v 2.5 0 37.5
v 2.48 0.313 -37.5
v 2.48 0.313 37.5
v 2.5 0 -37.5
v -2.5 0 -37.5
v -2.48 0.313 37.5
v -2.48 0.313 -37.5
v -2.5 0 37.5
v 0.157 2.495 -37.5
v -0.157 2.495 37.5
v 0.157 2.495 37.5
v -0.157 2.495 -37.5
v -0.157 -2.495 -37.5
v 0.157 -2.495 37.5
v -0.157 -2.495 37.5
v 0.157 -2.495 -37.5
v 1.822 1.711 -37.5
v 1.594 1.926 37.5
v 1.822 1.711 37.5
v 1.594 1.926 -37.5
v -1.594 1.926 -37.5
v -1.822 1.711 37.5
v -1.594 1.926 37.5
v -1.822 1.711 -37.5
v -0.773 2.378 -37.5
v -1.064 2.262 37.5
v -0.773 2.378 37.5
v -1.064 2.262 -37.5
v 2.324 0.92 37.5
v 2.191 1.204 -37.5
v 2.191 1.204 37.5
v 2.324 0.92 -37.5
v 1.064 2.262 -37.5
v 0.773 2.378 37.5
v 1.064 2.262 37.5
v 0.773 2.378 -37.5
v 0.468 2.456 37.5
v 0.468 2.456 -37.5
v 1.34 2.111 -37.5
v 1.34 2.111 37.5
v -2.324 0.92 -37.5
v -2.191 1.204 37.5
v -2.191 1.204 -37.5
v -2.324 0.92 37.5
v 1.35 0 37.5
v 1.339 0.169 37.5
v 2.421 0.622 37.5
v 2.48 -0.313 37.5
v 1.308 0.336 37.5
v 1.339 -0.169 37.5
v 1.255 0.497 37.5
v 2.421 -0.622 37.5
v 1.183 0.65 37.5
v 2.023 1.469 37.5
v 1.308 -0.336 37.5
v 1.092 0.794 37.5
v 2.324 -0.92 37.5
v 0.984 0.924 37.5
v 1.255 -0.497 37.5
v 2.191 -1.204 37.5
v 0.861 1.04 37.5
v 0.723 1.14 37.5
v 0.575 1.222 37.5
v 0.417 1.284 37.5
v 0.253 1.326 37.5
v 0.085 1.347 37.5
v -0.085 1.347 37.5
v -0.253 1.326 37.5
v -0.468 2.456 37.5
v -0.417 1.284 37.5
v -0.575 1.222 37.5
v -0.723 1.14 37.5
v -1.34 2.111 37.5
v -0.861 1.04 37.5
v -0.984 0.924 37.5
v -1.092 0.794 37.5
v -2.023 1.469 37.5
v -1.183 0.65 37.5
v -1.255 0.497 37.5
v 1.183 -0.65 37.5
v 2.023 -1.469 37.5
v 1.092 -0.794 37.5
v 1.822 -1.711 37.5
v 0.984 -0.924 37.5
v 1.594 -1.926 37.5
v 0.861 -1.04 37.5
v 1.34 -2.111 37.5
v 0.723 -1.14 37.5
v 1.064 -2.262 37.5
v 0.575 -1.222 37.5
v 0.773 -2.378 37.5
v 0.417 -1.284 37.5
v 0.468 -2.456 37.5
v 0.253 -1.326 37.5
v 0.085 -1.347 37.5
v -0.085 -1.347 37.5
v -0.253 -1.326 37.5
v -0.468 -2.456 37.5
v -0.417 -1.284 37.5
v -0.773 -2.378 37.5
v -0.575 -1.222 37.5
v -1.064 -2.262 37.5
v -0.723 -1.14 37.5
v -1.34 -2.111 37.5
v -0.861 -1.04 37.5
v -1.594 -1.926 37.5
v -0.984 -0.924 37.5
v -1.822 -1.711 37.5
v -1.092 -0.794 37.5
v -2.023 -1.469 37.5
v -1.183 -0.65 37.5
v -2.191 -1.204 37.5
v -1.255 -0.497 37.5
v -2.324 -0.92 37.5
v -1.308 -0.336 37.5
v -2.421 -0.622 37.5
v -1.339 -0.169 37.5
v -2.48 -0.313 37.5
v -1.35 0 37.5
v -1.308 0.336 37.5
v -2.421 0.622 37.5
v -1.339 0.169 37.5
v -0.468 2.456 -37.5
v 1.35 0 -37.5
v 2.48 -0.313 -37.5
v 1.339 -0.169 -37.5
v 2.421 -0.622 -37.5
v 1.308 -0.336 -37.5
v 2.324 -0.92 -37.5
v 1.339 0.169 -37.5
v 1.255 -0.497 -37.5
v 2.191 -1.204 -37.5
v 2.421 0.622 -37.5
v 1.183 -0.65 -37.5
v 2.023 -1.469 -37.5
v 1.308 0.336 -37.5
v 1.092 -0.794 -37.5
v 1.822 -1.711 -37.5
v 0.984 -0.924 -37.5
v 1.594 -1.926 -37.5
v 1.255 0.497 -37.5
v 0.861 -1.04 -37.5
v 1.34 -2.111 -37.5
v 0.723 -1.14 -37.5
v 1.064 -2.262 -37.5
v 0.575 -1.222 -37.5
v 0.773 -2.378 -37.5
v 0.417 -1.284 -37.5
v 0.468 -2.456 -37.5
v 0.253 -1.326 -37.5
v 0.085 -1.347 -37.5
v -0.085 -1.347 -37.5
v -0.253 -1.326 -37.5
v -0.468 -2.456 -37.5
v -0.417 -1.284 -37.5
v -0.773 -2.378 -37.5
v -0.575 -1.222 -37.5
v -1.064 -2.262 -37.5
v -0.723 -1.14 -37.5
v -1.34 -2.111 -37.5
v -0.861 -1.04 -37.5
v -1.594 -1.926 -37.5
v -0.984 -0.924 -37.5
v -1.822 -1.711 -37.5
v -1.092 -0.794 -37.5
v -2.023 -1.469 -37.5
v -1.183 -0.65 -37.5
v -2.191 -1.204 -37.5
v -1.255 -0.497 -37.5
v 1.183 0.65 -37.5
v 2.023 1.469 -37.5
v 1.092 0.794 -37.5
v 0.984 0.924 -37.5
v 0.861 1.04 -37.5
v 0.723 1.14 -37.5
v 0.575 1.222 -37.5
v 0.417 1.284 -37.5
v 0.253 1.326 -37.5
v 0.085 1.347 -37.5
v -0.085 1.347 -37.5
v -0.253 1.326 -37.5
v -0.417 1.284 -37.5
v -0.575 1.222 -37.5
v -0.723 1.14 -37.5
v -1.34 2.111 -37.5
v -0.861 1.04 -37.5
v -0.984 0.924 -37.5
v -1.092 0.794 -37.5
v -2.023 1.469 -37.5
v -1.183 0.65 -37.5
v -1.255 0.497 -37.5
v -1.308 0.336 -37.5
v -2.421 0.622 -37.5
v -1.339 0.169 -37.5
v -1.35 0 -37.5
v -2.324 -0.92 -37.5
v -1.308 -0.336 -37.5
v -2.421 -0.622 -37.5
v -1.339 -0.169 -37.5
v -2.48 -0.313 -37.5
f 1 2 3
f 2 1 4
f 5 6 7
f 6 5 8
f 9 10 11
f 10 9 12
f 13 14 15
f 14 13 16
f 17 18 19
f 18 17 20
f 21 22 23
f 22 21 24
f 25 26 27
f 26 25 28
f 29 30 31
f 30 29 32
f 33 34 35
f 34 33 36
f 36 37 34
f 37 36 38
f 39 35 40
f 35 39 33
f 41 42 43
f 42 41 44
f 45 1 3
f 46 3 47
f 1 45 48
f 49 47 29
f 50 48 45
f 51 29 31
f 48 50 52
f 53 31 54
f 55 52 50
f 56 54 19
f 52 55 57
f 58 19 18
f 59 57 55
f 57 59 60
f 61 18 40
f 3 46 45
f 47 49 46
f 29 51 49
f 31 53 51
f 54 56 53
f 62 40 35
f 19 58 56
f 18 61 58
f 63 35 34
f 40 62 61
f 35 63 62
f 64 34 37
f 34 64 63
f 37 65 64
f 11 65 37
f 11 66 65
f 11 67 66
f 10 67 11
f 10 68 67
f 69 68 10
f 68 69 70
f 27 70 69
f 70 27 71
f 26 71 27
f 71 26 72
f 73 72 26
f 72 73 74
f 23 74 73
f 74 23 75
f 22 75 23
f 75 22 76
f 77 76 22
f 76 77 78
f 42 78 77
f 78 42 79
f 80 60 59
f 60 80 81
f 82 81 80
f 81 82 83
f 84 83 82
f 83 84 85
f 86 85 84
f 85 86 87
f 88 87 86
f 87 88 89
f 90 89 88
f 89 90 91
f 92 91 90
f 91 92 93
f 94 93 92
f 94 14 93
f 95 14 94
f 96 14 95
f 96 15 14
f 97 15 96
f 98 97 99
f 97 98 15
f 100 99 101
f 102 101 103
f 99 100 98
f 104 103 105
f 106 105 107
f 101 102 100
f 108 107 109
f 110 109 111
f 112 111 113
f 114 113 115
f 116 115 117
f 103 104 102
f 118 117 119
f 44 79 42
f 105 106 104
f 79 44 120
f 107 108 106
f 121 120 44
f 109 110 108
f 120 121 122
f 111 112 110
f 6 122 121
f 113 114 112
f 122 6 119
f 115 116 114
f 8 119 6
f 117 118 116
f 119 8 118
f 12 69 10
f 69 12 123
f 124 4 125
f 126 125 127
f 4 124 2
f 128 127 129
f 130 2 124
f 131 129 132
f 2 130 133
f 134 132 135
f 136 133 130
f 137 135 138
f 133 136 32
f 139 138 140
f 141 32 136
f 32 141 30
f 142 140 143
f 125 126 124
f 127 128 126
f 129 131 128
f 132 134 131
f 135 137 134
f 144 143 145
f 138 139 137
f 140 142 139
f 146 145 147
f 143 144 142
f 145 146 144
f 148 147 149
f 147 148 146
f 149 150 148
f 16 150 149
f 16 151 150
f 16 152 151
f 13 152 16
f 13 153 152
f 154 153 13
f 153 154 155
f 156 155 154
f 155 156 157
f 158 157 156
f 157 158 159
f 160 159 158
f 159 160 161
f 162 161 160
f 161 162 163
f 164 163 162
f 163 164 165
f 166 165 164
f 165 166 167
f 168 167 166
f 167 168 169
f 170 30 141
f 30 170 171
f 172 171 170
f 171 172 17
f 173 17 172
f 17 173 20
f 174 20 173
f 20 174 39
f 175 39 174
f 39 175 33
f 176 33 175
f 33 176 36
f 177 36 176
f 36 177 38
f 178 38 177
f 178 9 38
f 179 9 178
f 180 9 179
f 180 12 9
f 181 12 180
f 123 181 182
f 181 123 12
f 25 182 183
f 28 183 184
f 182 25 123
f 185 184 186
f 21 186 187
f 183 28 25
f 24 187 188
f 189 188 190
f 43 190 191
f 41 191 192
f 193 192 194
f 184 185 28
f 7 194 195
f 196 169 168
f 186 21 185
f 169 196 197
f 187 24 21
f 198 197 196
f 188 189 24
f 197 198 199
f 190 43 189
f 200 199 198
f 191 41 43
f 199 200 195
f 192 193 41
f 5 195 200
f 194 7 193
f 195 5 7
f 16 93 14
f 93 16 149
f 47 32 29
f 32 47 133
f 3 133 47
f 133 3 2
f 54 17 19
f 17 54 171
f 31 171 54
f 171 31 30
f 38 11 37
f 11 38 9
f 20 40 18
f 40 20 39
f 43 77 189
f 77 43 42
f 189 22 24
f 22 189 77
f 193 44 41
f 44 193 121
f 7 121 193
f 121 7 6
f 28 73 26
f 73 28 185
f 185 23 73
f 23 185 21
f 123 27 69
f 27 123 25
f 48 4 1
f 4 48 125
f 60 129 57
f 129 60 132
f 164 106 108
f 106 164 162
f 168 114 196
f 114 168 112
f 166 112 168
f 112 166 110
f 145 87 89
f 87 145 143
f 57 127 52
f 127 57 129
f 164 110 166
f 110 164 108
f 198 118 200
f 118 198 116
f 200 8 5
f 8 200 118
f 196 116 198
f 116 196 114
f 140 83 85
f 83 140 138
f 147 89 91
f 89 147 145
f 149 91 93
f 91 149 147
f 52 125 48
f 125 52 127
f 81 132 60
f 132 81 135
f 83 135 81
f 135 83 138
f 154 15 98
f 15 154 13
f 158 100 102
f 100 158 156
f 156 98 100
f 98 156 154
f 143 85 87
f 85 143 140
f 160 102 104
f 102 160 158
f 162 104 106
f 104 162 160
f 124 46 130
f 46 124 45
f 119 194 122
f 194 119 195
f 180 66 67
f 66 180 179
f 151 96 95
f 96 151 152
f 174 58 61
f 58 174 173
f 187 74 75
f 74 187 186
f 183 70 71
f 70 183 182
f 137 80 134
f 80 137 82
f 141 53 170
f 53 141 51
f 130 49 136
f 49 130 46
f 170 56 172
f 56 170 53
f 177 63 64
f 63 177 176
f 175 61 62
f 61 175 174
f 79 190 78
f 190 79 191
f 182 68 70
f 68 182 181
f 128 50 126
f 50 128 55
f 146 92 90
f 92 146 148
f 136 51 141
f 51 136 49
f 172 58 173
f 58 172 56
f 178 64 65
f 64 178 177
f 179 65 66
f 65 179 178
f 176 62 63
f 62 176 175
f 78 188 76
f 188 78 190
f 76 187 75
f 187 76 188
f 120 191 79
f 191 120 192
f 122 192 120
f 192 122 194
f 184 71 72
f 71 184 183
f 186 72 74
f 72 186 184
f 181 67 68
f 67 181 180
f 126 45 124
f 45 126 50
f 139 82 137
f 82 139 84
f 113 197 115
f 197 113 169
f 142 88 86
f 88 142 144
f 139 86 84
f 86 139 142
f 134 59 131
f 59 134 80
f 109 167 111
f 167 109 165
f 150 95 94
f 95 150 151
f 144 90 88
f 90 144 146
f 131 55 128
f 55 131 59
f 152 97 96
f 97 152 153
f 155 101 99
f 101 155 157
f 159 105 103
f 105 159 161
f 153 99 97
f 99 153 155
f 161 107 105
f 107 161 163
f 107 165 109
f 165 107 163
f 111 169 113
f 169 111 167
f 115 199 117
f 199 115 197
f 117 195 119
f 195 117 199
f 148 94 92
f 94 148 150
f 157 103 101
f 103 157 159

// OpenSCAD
$fn = 50;


difference() {
	union() {
		translate(v = [0, 0, -37.5000000000]) {
			cylinder(h = 75, r = 2.5000000000);
		}
	}
	union() {
		translate(v = [0, 0, -100.0000000000]) {
			cylinder(h = 200, r = 1.3500000000);
		}
	}
}
